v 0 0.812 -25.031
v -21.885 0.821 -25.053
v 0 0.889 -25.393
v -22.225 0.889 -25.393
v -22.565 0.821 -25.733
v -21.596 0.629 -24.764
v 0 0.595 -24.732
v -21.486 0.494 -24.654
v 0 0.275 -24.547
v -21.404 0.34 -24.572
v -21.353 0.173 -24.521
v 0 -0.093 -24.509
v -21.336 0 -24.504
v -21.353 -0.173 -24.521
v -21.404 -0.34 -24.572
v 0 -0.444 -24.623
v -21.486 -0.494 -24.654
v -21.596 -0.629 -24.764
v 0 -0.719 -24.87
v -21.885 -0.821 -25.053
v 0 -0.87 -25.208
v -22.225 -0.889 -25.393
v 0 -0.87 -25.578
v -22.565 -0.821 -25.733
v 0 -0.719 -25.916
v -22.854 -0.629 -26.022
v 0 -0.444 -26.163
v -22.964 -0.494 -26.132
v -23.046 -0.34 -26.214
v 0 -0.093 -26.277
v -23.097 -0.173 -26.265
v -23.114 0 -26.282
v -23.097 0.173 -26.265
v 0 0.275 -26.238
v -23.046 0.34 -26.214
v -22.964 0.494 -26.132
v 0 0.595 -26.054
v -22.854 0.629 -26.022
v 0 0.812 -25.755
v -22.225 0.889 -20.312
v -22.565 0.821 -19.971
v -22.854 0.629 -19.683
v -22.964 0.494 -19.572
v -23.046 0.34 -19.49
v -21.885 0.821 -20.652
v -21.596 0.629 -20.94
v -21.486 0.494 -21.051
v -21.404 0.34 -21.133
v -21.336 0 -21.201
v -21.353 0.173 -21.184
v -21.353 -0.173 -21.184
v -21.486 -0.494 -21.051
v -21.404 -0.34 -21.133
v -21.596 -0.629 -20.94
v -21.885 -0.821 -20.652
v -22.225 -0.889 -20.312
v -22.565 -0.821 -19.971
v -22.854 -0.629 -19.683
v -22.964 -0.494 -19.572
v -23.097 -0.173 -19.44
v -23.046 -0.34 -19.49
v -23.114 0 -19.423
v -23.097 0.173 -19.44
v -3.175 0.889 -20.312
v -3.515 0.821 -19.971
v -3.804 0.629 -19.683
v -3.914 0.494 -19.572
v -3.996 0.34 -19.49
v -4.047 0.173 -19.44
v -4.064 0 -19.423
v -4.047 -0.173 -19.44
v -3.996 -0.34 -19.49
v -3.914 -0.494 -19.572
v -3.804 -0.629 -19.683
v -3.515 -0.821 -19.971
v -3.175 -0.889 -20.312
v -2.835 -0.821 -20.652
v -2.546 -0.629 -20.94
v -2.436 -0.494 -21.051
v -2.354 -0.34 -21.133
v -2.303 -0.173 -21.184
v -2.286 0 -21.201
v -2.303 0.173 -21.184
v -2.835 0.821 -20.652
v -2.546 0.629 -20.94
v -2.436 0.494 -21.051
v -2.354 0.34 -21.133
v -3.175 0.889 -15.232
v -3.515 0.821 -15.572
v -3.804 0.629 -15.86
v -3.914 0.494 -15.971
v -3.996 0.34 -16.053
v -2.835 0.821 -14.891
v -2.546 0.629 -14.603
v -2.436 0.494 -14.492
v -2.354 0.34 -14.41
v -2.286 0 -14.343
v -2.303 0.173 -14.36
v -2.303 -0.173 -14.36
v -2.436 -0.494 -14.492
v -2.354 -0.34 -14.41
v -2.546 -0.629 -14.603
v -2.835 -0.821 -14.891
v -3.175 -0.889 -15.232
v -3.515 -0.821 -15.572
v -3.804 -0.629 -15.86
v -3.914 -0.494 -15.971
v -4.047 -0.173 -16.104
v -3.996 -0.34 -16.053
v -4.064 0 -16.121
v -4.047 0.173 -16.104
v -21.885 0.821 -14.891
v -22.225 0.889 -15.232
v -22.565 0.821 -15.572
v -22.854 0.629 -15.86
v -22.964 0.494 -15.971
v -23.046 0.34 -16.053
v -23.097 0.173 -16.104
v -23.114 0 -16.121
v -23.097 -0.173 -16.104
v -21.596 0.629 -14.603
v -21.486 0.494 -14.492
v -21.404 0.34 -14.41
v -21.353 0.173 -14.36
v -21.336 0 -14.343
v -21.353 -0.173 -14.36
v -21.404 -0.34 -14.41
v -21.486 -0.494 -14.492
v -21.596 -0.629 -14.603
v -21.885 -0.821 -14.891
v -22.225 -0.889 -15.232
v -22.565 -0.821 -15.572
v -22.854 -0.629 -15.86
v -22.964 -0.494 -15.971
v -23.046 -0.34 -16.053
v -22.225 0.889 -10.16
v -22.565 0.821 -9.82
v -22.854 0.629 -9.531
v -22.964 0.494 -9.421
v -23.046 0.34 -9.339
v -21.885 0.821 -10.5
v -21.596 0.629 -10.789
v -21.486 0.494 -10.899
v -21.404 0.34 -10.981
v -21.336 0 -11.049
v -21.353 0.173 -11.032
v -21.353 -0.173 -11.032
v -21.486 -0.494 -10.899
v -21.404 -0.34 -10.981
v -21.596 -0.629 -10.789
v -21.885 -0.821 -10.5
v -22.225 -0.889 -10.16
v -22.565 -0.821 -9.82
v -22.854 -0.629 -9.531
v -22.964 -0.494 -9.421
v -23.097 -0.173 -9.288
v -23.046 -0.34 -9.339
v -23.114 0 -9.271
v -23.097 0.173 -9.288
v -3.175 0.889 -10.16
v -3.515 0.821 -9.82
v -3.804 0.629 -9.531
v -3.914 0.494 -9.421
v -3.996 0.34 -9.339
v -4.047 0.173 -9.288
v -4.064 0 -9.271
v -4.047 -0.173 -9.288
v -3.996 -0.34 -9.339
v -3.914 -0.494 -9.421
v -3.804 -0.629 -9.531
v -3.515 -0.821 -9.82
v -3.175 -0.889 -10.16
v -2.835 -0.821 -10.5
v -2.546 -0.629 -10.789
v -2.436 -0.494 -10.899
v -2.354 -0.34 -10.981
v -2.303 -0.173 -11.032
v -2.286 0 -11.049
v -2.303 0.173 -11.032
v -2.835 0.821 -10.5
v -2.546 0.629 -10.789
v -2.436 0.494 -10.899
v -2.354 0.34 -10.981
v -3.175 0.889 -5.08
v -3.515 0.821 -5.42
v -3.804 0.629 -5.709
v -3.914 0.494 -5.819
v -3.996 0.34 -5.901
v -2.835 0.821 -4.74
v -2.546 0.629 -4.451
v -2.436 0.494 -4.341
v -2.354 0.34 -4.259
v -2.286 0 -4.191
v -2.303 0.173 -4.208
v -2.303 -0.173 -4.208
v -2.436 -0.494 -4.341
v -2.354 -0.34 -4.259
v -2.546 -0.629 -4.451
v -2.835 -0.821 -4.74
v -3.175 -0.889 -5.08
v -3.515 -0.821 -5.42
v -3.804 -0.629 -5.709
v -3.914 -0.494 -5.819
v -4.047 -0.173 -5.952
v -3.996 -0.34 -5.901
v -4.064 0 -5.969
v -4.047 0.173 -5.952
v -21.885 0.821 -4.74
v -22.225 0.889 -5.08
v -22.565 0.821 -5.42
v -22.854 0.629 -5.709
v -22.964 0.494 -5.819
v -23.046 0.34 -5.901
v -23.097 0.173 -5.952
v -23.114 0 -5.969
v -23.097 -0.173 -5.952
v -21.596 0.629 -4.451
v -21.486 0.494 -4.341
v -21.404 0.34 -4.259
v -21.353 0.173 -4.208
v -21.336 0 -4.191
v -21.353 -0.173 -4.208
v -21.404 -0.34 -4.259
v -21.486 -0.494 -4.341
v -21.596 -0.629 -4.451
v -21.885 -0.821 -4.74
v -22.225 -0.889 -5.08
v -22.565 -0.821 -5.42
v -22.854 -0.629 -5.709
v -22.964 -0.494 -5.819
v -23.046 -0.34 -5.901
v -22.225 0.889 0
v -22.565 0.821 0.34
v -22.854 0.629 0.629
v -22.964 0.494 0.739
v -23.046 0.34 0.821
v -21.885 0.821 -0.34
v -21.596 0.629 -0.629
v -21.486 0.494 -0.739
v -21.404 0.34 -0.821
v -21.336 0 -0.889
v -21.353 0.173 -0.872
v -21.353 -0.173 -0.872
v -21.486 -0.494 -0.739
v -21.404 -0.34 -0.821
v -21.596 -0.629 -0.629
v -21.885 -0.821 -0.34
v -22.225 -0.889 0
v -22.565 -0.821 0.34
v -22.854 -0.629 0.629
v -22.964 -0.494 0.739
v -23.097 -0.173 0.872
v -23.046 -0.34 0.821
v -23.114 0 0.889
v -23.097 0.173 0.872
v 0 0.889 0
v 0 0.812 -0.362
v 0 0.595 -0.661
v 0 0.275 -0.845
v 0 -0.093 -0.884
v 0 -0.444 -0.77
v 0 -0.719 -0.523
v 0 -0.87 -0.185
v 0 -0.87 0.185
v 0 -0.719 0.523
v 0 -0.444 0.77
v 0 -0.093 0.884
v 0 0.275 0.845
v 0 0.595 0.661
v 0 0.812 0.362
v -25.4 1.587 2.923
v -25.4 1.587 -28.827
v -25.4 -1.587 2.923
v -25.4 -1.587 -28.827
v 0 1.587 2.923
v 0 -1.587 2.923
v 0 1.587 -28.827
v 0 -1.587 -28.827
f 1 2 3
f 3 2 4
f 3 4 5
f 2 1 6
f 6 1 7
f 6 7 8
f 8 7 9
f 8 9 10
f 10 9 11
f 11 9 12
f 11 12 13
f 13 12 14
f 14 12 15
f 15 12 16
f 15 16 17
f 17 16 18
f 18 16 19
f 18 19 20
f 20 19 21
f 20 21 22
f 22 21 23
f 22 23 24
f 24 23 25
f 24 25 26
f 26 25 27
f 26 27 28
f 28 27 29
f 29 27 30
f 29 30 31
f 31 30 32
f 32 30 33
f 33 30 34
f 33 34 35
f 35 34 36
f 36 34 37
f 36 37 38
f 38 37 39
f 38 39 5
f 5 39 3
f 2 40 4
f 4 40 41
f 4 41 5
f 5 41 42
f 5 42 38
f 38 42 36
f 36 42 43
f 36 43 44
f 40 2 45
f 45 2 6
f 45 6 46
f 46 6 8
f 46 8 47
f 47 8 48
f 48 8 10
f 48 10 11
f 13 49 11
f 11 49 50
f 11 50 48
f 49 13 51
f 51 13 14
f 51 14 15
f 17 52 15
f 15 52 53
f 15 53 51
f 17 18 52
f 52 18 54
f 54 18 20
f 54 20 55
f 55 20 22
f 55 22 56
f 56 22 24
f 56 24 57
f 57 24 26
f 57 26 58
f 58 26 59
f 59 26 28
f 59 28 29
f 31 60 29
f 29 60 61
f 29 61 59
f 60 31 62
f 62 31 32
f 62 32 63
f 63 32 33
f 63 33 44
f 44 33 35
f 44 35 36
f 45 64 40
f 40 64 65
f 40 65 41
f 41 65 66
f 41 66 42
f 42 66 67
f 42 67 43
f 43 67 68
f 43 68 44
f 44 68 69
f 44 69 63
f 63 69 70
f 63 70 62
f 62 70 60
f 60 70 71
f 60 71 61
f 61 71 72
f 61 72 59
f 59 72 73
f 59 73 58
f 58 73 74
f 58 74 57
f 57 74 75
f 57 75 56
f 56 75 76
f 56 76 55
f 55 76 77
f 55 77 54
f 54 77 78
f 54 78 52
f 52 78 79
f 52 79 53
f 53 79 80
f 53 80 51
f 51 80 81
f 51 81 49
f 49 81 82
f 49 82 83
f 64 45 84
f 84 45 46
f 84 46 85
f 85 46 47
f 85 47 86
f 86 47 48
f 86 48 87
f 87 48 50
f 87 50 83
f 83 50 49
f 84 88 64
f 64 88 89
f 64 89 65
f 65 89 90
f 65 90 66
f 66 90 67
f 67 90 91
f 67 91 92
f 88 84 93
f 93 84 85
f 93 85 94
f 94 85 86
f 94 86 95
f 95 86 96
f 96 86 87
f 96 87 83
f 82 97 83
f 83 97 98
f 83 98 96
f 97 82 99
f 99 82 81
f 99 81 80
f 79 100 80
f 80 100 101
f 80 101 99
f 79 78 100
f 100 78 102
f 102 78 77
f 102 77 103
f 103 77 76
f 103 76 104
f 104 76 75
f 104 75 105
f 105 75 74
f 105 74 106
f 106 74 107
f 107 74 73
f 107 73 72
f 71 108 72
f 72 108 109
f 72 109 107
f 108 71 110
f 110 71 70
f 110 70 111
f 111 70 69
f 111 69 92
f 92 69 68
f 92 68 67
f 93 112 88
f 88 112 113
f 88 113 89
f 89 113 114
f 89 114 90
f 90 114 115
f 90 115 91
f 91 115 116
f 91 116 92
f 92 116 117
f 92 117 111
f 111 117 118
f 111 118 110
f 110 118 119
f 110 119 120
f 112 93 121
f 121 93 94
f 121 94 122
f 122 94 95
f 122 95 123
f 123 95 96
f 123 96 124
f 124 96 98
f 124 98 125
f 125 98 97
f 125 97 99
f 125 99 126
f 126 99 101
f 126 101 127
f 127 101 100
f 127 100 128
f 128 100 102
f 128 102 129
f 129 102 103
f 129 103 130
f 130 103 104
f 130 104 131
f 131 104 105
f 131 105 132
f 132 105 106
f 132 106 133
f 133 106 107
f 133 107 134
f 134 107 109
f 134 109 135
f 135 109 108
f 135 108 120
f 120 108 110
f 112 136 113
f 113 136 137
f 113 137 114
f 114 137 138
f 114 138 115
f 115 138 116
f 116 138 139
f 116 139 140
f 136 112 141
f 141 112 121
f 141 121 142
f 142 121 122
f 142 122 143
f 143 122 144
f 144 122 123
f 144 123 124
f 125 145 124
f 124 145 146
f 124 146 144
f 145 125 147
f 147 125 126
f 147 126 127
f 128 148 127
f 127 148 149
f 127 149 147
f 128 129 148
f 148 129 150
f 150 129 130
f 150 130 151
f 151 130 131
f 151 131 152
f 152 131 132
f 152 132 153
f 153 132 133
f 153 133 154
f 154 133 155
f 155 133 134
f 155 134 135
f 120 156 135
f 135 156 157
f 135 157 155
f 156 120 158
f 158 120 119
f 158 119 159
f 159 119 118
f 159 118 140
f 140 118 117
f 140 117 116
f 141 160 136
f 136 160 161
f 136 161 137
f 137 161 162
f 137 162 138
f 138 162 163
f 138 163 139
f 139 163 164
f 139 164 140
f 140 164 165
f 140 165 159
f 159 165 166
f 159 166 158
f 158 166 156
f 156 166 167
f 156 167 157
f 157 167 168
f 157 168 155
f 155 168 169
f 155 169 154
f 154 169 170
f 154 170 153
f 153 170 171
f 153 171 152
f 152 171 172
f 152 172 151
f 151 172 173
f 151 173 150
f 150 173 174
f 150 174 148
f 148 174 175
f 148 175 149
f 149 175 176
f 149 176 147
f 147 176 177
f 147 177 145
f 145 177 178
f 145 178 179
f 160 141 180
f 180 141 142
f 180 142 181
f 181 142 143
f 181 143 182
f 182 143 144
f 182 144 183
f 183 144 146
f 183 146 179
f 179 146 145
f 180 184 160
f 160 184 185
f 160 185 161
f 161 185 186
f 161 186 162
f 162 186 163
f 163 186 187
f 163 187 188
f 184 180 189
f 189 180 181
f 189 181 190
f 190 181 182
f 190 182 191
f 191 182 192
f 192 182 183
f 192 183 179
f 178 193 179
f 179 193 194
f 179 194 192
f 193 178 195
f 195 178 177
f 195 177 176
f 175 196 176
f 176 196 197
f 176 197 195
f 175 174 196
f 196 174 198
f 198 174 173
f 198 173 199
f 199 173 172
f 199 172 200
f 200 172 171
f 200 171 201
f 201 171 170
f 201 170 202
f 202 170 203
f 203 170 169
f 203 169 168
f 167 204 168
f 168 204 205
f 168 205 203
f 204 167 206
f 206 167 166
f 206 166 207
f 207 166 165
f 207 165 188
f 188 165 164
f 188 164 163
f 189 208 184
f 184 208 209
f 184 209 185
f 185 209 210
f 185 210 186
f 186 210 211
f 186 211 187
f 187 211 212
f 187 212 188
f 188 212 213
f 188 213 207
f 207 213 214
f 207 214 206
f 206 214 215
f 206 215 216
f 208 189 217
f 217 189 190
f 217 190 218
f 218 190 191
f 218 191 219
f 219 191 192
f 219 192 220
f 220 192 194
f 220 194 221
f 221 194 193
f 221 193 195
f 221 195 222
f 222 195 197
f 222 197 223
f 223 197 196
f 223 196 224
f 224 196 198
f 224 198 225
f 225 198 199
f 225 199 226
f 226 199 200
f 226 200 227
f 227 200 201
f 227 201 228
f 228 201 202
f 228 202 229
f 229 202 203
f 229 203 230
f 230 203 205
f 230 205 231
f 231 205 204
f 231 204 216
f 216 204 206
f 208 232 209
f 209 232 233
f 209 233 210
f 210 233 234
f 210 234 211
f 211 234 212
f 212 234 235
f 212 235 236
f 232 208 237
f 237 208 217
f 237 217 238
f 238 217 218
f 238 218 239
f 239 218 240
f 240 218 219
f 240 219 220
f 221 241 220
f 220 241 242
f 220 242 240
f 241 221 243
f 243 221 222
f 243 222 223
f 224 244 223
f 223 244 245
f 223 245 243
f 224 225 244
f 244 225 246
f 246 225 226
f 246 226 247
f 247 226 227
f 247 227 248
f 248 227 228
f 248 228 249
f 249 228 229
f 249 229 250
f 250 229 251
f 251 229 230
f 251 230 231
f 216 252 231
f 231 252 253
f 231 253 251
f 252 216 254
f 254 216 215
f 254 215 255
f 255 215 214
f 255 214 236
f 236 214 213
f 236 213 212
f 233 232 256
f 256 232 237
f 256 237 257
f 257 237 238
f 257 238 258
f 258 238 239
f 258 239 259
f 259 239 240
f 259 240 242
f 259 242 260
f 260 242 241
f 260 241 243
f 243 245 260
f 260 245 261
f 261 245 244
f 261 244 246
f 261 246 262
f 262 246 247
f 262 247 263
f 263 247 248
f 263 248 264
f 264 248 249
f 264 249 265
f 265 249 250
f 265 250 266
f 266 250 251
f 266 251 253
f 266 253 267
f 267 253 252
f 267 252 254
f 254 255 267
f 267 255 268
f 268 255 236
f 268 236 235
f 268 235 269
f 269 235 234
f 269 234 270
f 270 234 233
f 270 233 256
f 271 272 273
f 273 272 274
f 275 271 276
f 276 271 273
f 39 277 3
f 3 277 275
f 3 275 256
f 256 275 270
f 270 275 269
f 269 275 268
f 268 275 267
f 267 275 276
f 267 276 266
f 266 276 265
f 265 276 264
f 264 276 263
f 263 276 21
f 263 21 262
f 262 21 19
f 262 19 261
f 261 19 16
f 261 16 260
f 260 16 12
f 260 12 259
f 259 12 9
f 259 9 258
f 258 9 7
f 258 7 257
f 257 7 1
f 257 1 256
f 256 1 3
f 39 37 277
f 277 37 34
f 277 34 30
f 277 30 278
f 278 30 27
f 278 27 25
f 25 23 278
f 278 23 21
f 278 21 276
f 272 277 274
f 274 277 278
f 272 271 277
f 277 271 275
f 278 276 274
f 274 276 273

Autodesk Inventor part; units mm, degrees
ref_plane "YZ Plane" through (0, 0, 0) normal (1, 0, 0) x (0, 1, 0)
ref_plane "XY Plane" through (0, 0, 0) normal (0, 0, 1) x (1, 0, 0)
ref_plane "Work Plane1" through (0, 1.5875, 0) normal (0, 1, 0) x (-1, 0, 0)
sketch "Sketch8" plane through (0, 0, 0) normal (0, 1, 0) x (-1, 0, 0)
  line L0 (0, 0) -> (22.225, 0)
  line L1 (22.225, 0) -> (22.225, -5.08)
  line L2 (22.225, -5.08) -> (3.175, -5.08)
  line L3 (3.175, -5.08) -> (3.175, -10.16)
  line L4 (3.175, -10.16) -> (22.225, -10.16)
  line L5 (22.225, -10.16) -> (22.225, -15.2317)
  line L6 (22.225, -15.2317) -> (3.175, -15.2317)
  line L7 (3.175, -15.2317) -> (3.175, -20.3117)
  line L8 (3.175, -20.3117) -> (22.225, -20.3117)
  line L9 (22.225, -20.3117) -> (22.225, -25.393)
  line L10 (22.225, -25.393) -> (0, -25.393)
  dimension "d24" = 22.225
  dimension "d25" = 5.08
  dimension "d26" = 19.05
  dimension "d27" = 5.08
  dimension "d28" = 5.08
sketch "Sketch9" plane through (0, 0, 0) normal (1, 0, 0) x (0, 1, 0)
  circle A0 centre (0, 0) radius 0.889
  dimension "d29" = 1.778
sketch "Sketch10" plane through (0, 1.5875, 0) normal (0, 1, 0) x (-1, 0, 0)
  line L0 (0, 2.9232) -> (25.4, 2.9232)
  line L1 (25.4, 2.9232) -> (25.4, -28.8268)
  line L2 (25.4, -28.8268) -> (0, -28.8268)
  line L3 (0, -28.8268) -> (0, 2.9232)
  point P0 (0, 0)
  dimension "d30" = 25.4
  dimension "d32" = 31.75
extrude "Extrusion4" add sketch "Sketch10" against normal blind 3.175
sweep "Sweep2" cut profiles "Sketch9" path "Sketch8"
properties part number "strain gauge v2"
